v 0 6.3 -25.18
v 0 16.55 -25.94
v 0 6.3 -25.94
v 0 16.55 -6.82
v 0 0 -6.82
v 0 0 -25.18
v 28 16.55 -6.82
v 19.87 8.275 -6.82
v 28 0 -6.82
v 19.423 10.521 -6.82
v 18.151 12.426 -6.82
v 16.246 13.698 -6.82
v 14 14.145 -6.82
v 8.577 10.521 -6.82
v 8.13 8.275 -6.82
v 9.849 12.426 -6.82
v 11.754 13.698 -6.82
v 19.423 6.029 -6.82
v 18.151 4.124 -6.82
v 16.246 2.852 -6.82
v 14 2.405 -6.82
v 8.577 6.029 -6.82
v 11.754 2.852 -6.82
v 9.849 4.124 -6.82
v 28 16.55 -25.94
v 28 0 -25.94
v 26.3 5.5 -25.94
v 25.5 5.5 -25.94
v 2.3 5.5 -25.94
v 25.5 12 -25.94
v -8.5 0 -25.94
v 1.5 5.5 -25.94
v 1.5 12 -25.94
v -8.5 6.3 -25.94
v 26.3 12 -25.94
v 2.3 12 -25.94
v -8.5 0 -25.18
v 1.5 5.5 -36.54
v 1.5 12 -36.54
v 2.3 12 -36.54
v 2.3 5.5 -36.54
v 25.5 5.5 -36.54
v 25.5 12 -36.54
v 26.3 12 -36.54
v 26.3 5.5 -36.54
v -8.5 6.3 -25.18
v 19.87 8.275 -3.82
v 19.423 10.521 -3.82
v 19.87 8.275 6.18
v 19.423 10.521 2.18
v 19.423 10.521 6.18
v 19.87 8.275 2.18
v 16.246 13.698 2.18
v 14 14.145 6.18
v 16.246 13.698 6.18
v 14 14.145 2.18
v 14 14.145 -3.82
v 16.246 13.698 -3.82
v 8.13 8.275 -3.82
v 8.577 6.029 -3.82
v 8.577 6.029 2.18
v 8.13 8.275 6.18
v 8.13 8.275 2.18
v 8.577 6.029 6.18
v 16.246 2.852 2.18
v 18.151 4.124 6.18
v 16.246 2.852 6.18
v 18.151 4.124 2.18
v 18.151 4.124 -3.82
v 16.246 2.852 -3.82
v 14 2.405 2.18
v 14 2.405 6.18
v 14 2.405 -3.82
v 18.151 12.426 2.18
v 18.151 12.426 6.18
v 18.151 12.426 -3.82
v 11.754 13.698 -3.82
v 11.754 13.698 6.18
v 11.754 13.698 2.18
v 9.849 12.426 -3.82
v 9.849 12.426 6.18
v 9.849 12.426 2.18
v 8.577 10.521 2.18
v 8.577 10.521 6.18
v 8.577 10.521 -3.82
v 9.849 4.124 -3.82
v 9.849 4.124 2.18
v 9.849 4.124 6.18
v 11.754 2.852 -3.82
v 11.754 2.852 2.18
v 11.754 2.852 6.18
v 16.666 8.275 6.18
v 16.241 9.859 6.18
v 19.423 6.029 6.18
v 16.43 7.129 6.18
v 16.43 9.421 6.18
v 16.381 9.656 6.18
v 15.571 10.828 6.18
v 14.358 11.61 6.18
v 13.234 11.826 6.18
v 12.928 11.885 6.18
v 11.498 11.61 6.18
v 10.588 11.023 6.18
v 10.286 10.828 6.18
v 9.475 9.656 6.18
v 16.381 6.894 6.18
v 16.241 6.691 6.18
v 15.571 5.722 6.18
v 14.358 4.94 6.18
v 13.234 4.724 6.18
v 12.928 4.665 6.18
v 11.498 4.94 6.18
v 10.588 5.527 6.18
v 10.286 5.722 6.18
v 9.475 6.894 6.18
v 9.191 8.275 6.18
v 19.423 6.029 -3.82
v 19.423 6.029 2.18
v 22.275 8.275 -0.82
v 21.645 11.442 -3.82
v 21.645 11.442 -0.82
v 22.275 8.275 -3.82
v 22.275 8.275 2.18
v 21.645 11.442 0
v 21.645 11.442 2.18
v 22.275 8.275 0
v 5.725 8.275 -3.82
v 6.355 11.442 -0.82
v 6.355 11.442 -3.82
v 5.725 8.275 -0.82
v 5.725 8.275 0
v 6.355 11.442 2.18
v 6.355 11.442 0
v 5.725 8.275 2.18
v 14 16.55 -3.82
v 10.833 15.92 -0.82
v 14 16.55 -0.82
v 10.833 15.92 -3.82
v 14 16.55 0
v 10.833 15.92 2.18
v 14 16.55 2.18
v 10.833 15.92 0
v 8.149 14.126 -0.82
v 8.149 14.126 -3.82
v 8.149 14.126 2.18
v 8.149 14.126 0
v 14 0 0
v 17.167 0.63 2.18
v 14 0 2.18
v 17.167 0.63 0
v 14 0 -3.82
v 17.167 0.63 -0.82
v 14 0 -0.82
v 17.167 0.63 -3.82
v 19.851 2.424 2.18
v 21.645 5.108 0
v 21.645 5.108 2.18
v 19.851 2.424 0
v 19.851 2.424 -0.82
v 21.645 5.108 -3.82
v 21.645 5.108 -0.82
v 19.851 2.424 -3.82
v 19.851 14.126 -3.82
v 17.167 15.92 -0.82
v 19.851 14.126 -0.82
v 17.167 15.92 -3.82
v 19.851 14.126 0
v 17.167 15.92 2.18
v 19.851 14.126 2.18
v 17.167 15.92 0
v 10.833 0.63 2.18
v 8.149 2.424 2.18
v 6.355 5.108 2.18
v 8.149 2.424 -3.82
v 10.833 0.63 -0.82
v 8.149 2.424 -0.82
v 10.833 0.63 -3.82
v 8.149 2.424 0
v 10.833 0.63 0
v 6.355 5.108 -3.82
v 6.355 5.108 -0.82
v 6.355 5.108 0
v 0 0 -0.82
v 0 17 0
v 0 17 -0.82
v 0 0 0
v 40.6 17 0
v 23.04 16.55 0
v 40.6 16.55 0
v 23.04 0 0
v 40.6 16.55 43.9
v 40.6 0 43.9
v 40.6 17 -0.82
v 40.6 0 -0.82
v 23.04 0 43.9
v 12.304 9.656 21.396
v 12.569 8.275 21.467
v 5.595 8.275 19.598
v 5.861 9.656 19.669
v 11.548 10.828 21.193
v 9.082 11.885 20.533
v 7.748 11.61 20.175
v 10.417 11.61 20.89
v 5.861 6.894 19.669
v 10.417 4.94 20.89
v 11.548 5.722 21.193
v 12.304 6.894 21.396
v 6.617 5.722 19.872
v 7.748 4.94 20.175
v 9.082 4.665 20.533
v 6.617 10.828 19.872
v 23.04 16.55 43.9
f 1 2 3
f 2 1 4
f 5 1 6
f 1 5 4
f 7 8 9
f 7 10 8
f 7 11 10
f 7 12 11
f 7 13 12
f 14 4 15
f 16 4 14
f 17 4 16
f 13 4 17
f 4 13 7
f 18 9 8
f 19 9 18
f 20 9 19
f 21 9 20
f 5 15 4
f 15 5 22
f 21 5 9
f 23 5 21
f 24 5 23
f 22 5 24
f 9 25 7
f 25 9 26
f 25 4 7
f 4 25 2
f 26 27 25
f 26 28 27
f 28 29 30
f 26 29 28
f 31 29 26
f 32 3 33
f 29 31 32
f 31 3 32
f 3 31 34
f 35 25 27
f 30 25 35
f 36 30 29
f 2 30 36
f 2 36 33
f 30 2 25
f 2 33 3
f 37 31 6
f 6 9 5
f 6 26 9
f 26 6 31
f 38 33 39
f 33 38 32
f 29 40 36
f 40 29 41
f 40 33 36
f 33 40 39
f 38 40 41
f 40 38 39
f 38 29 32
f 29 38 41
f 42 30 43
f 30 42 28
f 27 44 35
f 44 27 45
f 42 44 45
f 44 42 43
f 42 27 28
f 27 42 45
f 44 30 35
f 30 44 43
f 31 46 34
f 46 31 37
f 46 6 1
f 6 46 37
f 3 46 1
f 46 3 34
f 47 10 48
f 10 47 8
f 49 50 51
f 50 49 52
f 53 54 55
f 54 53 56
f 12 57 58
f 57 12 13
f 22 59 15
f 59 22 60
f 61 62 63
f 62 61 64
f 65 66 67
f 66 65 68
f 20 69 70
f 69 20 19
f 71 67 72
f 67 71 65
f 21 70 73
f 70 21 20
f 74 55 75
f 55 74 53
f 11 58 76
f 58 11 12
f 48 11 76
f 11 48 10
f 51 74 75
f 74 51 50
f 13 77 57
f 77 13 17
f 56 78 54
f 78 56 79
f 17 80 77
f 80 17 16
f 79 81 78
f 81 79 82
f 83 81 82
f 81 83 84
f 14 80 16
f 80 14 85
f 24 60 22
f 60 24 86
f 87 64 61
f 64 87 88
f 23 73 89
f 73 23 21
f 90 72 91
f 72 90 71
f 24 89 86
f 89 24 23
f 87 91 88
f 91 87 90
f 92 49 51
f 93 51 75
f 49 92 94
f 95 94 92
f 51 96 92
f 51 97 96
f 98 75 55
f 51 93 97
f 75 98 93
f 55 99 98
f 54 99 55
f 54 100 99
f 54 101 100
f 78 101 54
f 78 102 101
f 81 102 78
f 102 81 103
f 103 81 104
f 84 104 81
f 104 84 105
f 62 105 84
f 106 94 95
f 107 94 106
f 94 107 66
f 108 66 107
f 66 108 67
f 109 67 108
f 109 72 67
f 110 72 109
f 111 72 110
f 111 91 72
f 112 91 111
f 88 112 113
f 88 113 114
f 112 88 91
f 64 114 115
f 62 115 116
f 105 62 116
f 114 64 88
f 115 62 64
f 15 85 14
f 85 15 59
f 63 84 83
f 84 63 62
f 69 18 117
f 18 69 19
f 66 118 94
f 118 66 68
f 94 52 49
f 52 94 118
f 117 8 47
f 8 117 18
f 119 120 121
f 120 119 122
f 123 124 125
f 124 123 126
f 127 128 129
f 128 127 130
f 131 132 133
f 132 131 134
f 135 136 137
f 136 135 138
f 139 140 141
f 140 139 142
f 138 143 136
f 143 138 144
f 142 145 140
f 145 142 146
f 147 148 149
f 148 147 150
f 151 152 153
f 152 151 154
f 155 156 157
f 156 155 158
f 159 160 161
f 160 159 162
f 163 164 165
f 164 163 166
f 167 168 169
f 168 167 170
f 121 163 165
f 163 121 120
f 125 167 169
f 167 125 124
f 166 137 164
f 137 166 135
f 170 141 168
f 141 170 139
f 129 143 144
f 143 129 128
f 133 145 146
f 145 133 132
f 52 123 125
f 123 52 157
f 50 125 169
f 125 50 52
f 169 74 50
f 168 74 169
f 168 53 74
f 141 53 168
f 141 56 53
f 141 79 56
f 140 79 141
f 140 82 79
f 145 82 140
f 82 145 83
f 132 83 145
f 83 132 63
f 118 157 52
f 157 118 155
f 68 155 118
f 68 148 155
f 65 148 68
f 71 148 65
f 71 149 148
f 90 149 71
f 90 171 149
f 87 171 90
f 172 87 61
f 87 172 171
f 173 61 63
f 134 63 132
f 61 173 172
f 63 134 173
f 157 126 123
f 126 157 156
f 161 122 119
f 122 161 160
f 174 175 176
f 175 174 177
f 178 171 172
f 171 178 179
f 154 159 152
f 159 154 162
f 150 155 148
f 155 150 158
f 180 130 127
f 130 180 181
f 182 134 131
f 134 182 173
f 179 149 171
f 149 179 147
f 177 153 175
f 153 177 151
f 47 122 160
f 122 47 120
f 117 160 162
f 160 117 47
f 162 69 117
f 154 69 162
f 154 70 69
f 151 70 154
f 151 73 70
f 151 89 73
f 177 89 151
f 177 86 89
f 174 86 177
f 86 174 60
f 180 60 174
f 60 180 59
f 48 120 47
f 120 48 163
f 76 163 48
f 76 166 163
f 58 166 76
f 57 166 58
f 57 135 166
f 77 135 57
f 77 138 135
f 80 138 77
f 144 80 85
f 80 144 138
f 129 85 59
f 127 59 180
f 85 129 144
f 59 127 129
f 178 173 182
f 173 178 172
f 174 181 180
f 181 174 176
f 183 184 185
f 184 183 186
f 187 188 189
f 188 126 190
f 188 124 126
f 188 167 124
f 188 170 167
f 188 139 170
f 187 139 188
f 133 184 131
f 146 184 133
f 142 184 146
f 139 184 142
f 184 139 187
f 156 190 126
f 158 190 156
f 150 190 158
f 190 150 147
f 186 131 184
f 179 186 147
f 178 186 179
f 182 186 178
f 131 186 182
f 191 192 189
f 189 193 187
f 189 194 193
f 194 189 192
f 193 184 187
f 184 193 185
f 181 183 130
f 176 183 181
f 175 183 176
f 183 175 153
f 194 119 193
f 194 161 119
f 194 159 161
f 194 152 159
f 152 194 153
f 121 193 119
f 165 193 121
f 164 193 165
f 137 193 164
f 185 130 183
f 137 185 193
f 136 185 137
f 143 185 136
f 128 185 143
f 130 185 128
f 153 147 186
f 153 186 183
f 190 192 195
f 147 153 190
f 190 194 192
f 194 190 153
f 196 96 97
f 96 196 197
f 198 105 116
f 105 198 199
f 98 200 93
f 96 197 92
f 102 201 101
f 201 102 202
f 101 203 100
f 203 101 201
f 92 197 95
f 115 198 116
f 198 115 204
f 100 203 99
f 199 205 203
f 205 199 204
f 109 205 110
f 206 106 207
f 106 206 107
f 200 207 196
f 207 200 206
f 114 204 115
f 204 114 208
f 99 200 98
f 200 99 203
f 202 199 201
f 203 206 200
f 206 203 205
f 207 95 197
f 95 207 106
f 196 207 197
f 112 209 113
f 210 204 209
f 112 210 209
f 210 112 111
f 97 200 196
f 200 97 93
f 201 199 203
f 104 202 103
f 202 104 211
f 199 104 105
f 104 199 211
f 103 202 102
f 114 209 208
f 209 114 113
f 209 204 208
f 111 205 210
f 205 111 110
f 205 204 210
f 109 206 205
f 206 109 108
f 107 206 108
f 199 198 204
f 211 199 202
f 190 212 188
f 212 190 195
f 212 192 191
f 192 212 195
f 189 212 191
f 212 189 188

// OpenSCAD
// A toggle switch ordered from https://www.sparkfun.com/products/11310

$fn = 16;

length = 28;
width = 16.55;
height = 19.12;

module base() {
    cube([length, width, height]);
}

module prongs() {
    translate([1.5, 5.5, -10.6]) cube([.8, 6.5, 10.6]);
    translate([25.5, 5.5, -10.6]) cube([.8, 6.5, 10.6]);
    translate([-8.5, 0, 0]) cube([8.5, 6.3, .76]);
}

module shaft() {
    translate([length/2, width/2, height]) cylinder(h = 13, r = 11.74 / 2);
    translate([length/2, width/2, height + 3]) cylinder(h = 6, r = 16.55 / 2);
}

module plate() {
    translate([0, 0, height + 6]) cube([40.6, 17, .82]);
}

module toggle() {
    translate([length/2, width/2, height + 9]) rotate([0, -15, 0]) {
        cylinder(h = 19, r = 7.22/2);    
    }
}

module cover() {
    color("red") translate([40.6 - 17.56, 0, height + 6.82]) cube([17.56, width, 43.9]);
}

module toggle_switch_with_cover() {
    translate([0, 0, -height - .82 - 6]) 
        union() {
            base();
            color("silver") prongs();
            color("black") shaft();
            color("silver") plate();
            color("red") toggle();
            color("red") cover();
        }
}

toggle_switch_with_cover();
